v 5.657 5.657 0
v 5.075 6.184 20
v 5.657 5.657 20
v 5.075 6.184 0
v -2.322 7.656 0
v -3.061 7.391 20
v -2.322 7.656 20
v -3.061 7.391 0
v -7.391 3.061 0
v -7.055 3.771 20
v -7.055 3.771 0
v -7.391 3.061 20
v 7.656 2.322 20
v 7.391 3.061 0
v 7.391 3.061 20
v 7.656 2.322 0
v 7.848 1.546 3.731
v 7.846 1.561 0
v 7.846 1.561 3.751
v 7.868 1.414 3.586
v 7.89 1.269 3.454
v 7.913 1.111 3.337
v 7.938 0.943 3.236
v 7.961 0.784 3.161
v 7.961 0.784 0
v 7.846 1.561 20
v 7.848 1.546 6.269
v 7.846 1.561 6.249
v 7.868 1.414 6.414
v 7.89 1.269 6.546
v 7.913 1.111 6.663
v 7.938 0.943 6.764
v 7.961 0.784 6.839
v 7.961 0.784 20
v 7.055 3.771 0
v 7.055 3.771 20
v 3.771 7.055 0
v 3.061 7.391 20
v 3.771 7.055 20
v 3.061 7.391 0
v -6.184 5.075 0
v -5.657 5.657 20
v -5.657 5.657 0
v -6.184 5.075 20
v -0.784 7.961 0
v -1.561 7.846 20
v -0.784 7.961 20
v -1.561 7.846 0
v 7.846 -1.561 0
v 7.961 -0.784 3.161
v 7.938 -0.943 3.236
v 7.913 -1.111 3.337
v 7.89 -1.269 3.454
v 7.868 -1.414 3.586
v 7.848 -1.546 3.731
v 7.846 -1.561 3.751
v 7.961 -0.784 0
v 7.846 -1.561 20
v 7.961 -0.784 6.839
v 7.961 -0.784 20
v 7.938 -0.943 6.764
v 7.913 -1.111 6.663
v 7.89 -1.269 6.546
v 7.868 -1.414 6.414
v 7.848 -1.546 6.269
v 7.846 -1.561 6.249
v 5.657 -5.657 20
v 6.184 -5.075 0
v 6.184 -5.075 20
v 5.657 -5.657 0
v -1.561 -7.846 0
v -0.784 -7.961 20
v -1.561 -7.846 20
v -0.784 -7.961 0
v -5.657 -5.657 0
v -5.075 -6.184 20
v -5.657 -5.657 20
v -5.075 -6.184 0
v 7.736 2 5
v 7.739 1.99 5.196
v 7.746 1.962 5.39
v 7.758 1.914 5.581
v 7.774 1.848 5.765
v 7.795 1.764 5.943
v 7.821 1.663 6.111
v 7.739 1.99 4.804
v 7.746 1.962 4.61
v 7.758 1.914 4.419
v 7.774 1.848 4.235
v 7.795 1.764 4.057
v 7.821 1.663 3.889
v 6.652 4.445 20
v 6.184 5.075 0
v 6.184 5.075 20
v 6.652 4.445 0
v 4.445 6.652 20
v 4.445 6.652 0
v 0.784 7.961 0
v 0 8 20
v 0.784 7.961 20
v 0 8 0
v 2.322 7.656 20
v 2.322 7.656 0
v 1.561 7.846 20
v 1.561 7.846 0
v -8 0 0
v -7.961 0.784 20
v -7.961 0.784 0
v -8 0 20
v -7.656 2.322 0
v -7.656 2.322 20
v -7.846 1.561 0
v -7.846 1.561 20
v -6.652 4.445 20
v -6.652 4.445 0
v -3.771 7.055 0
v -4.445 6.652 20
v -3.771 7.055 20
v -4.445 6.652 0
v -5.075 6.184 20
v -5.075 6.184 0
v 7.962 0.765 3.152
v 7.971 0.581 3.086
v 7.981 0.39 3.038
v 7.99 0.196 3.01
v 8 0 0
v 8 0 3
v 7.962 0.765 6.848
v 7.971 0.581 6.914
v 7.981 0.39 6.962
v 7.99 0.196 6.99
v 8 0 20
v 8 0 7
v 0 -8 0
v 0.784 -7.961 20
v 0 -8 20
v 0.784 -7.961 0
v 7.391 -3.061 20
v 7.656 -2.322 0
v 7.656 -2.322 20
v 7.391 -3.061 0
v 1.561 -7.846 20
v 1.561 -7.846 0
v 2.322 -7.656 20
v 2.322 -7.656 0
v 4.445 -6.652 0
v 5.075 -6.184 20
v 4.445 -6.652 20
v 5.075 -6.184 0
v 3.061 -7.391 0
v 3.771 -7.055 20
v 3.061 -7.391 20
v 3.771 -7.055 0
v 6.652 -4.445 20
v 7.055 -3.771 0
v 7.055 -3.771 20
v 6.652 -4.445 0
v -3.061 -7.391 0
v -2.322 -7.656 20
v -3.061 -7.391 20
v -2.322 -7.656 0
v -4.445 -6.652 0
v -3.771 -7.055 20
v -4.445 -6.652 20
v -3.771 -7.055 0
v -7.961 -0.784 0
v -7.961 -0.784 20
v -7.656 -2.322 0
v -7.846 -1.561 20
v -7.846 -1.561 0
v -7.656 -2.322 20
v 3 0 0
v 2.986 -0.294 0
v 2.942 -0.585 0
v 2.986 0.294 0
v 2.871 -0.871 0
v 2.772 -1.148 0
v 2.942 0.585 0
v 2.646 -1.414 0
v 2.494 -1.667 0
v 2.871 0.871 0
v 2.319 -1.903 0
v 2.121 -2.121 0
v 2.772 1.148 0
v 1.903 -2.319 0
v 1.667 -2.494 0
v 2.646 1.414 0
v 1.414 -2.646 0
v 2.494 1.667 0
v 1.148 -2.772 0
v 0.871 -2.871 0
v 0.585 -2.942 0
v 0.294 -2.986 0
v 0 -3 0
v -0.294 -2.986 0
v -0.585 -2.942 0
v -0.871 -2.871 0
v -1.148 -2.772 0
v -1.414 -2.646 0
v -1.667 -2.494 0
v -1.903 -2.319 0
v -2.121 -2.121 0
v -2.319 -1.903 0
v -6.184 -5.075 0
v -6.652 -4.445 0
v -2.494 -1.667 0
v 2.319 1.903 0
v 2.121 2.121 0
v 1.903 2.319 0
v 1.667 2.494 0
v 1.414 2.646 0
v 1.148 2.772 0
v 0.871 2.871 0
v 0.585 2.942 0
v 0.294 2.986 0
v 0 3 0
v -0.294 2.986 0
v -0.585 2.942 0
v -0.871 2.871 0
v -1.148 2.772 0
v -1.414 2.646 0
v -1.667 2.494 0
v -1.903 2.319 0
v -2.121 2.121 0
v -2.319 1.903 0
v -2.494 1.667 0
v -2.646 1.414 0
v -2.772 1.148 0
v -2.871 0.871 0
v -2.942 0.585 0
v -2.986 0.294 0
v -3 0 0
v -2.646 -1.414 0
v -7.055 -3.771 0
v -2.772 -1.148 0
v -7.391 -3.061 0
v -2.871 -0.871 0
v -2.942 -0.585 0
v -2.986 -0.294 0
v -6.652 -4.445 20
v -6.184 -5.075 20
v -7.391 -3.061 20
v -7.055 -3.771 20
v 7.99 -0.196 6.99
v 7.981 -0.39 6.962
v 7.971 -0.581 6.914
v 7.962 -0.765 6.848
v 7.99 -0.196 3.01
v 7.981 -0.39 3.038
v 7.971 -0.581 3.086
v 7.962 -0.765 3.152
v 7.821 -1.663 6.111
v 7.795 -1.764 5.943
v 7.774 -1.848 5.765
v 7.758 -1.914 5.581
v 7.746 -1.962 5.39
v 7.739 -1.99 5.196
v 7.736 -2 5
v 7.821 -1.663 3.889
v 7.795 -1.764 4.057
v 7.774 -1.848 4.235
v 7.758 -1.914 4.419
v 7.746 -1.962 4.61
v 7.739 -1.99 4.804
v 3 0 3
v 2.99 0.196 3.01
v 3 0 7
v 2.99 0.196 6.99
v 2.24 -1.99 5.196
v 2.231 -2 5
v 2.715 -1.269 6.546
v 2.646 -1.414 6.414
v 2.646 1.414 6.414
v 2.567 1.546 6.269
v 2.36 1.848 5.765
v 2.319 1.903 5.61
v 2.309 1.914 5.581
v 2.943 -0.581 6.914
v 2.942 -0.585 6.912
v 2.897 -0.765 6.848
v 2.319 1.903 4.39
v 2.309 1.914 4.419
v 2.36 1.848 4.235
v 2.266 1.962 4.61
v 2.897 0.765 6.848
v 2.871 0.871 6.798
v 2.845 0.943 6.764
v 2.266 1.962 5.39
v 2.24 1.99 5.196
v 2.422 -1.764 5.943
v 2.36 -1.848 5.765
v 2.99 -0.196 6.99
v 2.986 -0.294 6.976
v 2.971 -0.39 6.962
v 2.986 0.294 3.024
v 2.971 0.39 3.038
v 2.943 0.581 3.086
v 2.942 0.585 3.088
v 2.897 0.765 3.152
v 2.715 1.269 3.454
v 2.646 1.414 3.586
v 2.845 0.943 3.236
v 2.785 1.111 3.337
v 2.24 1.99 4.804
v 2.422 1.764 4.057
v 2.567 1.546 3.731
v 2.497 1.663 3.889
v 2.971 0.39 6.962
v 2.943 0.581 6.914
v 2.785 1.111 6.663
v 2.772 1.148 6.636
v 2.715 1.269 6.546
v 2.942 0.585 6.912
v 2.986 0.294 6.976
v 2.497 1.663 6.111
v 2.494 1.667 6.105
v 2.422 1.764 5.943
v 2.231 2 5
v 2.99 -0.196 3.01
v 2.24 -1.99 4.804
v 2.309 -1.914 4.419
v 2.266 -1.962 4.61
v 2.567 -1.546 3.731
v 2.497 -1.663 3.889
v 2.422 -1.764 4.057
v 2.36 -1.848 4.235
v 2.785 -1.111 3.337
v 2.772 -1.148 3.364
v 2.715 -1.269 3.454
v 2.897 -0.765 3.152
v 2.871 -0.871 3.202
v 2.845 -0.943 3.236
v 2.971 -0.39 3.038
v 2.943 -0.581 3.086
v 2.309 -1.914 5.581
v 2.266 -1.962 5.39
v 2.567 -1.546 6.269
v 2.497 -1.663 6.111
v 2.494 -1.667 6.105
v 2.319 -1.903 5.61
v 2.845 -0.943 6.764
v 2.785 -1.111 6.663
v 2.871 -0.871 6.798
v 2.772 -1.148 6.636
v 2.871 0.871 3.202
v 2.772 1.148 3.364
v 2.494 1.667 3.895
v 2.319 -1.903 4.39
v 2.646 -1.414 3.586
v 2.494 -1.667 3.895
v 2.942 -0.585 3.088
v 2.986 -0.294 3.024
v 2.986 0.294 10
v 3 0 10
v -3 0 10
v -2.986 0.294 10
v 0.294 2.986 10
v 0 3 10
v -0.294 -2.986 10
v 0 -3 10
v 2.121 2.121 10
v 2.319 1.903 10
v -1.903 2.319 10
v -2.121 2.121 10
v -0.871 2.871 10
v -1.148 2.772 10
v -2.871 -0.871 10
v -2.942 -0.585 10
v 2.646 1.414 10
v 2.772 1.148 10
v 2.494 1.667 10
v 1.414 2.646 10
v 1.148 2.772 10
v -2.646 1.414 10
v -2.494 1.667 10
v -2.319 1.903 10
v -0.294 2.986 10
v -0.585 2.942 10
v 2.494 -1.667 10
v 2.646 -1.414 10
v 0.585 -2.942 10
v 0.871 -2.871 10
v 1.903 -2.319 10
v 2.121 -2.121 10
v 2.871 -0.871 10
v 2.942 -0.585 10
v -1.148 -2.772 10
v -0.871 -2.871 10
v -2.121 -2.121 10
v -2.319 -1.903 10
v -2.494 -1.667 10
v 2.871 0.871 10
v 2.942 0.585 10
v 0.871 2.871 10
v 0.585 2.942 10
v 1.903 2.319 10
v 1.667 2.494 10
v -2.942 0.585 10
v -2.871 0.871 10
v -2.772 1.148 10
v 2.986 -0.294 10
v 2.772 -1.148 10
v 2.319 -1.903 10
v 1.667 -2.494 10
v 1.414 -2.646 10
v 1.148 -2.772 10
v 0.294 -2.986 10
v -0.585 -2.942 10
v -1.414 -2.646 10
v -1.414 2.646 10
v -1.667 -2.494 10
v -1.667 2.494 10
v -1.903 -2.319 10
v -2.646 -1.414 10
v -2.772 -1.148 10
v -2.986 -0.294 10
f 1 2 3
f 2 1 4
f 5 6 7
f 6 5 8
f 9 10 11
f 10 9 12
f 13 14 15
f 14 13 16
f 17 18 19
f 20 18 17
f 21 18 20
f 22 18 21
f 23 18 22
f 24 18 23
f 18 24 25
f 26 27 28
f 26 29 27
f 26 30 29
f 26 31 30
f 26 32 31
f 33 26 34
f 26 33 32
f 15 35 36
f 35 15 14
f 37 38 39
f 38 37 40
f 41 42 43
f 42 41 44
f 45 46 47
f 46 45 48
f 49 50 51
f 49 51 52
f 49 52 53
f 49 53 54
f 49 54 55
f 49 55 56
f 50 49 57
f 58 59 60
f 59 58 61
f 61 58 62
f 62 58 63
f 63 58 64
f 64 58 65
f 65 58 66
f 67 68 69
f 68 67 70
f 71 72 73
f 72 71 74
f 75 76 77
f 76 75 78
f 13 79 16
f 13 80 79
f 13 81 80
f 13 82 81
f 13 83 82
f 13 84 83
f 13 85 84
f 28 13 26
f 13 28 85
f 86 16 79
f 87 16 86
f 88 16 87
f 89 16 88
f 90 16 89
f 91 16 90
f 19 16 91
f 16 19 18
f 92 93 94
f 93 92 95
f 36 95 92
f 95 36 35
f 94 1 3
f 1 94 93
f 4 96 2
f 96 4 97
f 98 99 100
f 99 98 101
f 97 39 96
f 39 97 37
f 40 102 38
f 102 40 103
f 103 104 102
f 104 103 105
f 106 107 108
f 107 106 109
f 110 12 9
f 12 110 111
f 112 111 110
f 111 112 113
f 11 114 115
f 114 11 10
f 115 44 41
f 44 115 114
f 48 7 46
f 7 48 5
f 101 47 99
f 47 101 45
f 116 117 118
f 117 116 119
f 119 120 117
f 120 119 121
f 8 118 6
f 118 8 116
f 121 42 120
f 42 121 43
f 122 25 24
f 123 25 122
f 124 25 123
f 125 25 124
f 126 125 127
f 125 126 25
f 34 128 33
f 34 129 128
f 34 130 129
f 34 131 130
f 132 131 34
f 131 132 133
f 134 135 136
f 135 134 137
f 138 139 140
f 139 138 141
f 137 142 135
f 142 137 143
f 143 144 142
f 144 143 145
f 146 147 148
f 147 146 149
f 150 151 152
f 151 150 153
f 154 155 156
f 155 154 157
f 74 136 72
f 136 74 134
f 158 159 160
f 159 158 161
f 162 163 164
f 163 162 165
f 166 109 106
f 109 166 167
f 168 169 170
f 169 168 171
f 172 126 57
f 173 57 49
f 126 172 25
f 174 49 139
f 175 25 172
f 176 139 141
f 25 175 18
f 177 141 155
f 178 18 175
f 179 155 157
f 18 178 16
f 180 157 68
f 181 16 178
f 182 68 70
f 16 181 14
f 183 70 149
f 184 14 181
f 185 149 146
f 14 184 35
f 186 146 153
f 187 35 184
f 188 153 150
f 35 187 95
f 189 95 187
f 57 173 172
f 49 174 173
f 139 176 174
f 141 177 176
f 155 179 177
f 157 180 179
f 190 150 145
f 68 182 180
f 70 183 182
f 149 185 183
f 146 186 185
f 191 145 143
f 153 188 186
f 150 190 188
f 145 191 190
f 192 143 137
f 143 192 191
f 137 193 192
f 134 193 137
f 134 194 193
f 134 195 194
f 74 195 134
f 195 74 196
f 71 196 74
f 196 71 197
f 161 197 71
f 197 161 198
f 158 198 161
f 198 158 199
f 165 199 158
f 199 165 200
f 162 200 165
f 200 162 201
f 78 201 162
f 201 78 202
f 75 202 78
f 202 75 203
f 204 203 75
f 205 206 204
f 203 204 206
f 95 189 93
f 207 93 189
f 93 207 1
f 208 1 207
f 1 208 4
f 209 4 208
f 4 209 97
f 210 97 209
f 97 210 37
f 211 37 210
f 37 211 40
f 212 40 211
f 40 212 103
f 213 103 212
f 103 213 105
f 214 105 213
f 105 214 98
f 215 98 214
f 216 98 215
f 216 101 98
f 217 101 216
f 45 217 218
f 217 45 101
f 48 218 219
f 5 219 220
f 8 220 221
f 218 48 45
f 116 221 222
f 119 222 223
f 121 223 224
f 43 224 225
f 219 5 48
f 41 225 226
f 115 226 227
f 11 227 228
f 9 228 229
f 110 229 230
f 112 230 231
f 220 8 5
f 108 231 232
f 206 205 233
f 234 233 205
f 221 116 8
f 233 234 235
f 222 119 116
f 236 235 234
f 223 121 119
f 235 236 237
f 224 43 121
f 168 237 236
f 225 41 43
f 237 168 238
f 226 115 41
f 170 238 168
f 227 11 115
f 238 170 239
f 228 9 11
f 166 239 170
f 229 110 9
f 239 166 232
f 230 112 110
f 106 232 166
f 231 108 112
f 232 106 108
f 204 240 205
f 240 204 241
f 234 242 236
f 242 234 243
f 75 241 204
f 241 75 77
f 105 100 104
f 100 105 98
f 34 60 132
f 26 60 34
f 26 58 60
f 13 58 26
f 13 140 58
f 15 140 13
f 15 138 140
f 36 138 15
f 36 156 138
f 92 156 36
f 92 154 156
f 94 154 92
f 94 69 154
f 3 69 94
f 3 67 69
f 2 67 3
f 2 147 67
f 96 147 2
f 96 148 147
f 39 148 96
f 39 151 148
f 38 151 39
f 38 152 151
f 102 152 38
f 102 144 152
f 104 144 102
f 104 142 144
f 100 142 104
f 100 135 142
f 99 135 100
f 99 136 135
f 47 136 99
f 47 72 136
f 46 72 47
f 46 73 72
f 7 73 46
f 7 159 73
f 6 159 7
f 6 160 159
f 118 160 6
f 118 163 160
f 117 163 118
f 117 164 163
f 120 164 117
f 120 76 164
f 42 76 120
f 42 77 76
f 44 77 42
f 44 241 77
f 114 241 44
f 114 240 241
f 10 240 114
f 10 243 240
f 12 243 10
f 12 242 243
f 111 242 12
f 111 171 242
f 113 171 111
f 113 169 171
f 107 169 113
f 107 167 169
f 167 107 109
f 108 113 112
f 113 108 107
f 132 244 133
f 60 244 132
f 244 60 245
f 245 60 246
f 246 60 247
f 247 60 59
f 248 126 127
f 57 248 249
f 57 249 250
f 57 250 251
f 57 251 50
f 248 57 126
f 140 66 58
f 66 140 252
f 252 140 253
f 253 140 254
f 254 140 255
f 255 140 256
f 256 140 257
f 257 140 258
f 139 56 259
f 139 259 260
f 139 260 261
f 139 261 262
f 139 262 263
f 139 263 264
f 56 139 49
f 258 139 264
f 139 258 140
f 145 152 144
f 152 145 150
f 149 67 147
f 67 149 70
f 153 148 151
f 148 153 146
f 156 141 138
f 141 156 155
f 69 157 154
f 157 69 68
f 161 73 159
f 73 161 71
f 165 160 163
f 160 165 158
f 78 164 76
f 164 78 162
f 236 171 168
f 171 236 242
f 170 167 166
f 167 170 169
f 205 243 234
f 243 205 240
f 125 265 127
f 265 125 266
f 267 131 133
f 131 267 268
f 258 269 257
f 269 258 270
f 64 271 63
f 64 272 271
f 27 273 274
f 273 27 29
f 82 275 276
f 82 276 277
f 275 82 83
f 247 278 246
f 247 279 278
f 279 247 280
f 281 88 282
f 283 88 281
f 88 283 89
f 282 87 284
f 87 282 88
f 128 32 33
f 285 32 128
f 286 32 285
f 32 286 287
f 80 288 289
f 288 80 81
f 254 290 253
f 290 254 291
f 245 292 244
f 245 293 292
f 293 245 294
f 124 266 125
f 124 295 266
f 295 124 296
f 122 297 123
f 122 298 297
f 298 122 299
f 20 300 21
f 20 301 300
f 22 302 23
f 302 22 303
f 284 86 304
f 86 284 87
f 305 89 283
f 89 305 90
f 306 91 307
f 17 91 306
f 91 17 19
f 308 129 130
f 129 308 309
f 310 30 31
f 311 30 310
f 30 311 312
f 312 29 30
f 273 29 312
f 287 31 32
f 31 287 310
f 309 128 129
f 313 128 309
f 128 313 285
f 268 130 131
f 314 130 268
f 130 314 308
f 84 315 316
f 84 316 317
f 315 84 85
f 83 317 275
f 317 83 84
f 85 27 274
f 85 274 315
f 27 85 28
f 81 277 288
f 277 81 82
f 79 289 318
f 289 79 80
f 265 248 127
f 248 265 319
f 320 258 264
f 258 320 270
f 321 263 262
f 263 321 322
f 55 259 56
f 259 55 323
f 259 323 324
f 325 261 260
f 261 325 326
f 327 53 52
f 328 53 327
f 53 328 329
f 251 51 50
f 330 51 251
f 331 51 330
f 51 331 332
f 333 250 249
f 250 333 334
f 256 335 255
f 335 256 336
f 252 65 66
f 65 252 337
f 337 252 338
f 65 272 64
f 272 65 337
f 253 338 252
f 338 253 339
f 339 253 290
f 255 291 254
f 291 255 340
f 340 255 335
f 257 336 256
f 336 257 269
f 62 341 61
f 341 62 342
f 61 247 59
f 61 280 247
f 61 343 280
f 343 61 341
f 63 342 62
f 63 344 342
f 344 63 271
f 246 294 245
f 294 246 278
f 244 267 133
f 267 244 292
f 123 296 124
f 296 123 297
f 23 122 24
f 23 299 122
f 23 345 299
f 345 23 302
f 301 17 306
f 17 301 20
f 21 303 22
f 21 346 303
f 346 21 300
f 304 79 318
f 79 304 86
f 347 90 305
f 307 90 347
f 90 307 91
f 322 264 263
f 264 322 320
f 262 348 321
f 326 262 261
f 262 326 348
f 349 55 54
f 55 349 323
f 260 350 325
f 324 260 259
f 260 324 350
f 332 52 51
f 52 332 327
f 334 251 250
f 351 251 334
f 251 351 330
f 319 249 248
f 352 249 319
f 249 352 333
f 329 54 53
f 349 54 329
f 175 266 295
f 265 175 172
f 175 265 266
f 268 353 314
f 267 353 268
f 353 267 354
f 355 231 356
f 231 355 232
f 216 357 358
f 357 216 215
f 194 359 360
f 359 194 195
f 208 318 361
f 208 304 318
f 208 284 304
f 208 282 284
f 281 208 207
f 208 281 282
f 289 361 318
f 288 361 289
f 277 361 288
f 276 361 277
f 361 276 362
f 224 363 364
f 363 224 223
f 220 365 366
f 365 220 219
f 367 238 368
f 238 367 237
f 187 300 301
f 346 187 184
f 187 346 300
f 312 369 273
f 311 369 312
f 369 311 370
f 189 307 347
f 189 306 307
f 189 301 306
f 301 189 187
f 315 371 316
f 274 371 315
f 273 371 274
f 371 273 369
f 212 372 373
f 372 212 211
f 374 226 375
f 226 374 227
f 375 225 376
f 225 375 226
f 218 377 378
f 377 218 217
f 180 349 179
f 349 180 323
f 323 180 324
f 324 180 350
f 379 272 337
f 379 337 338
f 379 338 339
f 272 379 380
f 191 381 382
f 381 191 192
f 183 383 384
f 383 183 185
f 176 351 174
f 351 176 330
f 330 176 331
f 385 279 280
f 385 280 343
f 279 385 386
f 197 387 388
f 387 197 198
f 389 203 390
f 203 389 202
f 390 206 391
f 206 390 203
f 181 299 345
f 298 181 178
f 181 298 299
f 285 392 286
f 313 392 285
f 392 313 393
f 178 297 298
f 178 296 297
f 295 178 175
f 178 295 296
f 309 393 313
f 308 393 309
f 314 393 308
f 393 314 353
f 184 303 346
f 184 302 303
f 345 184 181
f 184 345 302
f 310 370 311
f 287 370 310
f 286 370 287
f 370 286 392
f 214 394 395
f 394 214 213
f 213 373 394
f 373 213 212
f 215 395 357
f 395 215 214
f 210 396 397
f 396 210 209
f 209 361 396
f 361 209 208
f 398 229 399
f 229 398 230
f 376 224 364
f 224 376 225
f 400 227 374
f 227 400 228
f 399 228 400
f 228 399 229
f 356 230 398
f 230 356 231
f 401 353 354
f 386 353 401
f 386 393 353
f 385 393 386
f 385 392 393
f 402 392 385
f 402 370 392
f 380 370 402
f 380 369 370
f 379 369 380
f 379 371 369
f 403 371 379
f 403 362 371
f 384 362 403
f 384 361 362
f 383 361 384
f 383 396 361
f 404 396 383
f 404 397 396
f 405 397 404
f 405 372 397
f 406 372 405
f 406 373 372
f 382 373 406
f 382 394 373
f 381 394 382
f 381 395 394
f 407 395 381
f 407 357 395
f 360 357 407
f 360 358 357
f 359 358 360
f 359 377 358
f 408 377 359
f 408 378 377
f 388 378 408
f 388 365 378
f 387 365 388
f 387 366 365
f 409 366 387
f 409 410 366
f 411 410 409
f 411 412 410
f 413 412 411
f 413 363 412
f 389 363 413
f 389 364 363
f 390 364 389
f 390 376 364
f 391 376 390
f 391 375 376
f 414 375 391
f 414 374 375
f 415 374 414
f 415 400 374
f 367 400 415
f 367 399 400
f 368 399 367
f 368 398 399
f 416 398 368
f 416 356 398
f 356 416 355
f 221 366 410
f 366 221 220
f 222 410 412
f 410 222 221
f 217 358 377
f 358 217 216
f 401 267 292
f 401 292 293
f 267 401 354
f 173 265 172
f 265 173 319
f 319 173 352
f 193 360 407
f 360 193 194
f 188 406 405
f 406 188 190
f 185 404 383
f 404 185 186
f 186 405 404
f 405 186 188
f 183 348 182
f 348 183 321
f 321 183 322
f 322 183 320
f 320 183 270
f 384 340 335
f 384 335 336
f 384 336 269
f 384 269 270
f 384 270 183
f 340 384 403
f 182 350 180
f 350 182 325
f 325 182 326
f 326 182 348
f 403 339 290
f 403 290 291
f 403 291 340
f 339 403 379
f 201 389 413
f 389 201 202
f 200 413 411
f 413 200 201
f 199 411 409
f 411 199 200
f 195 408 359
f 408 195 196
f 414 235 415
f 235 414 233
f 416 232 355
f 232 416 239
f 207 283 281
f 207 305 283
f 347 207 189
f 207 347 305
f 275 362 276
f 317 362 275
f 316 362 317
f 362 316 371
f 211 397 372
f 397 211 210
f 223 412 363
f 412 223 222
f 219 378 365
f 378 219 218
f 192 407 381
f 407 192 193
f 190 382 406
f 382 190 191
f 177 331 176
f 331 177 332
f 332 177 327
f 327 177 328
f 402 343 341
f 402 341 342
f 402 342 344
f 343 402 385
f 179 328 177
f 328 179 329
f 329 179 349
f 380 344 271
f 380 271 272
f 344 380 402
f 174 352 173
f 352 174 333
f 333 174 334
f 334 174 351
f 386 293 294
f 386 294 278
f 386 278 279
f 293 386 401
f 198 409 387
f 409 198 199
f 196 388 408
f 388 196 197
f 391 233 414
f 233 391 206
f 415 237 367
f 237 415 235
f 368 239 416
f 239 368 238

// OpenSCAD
$fn = 64;

difference(){
    cylinder(20, 8, 8);
    translate([0, 0, 5])rotate([0,90,0])cylinder(8, 2, 2);
    cylinder(10, 3, 3);
}
